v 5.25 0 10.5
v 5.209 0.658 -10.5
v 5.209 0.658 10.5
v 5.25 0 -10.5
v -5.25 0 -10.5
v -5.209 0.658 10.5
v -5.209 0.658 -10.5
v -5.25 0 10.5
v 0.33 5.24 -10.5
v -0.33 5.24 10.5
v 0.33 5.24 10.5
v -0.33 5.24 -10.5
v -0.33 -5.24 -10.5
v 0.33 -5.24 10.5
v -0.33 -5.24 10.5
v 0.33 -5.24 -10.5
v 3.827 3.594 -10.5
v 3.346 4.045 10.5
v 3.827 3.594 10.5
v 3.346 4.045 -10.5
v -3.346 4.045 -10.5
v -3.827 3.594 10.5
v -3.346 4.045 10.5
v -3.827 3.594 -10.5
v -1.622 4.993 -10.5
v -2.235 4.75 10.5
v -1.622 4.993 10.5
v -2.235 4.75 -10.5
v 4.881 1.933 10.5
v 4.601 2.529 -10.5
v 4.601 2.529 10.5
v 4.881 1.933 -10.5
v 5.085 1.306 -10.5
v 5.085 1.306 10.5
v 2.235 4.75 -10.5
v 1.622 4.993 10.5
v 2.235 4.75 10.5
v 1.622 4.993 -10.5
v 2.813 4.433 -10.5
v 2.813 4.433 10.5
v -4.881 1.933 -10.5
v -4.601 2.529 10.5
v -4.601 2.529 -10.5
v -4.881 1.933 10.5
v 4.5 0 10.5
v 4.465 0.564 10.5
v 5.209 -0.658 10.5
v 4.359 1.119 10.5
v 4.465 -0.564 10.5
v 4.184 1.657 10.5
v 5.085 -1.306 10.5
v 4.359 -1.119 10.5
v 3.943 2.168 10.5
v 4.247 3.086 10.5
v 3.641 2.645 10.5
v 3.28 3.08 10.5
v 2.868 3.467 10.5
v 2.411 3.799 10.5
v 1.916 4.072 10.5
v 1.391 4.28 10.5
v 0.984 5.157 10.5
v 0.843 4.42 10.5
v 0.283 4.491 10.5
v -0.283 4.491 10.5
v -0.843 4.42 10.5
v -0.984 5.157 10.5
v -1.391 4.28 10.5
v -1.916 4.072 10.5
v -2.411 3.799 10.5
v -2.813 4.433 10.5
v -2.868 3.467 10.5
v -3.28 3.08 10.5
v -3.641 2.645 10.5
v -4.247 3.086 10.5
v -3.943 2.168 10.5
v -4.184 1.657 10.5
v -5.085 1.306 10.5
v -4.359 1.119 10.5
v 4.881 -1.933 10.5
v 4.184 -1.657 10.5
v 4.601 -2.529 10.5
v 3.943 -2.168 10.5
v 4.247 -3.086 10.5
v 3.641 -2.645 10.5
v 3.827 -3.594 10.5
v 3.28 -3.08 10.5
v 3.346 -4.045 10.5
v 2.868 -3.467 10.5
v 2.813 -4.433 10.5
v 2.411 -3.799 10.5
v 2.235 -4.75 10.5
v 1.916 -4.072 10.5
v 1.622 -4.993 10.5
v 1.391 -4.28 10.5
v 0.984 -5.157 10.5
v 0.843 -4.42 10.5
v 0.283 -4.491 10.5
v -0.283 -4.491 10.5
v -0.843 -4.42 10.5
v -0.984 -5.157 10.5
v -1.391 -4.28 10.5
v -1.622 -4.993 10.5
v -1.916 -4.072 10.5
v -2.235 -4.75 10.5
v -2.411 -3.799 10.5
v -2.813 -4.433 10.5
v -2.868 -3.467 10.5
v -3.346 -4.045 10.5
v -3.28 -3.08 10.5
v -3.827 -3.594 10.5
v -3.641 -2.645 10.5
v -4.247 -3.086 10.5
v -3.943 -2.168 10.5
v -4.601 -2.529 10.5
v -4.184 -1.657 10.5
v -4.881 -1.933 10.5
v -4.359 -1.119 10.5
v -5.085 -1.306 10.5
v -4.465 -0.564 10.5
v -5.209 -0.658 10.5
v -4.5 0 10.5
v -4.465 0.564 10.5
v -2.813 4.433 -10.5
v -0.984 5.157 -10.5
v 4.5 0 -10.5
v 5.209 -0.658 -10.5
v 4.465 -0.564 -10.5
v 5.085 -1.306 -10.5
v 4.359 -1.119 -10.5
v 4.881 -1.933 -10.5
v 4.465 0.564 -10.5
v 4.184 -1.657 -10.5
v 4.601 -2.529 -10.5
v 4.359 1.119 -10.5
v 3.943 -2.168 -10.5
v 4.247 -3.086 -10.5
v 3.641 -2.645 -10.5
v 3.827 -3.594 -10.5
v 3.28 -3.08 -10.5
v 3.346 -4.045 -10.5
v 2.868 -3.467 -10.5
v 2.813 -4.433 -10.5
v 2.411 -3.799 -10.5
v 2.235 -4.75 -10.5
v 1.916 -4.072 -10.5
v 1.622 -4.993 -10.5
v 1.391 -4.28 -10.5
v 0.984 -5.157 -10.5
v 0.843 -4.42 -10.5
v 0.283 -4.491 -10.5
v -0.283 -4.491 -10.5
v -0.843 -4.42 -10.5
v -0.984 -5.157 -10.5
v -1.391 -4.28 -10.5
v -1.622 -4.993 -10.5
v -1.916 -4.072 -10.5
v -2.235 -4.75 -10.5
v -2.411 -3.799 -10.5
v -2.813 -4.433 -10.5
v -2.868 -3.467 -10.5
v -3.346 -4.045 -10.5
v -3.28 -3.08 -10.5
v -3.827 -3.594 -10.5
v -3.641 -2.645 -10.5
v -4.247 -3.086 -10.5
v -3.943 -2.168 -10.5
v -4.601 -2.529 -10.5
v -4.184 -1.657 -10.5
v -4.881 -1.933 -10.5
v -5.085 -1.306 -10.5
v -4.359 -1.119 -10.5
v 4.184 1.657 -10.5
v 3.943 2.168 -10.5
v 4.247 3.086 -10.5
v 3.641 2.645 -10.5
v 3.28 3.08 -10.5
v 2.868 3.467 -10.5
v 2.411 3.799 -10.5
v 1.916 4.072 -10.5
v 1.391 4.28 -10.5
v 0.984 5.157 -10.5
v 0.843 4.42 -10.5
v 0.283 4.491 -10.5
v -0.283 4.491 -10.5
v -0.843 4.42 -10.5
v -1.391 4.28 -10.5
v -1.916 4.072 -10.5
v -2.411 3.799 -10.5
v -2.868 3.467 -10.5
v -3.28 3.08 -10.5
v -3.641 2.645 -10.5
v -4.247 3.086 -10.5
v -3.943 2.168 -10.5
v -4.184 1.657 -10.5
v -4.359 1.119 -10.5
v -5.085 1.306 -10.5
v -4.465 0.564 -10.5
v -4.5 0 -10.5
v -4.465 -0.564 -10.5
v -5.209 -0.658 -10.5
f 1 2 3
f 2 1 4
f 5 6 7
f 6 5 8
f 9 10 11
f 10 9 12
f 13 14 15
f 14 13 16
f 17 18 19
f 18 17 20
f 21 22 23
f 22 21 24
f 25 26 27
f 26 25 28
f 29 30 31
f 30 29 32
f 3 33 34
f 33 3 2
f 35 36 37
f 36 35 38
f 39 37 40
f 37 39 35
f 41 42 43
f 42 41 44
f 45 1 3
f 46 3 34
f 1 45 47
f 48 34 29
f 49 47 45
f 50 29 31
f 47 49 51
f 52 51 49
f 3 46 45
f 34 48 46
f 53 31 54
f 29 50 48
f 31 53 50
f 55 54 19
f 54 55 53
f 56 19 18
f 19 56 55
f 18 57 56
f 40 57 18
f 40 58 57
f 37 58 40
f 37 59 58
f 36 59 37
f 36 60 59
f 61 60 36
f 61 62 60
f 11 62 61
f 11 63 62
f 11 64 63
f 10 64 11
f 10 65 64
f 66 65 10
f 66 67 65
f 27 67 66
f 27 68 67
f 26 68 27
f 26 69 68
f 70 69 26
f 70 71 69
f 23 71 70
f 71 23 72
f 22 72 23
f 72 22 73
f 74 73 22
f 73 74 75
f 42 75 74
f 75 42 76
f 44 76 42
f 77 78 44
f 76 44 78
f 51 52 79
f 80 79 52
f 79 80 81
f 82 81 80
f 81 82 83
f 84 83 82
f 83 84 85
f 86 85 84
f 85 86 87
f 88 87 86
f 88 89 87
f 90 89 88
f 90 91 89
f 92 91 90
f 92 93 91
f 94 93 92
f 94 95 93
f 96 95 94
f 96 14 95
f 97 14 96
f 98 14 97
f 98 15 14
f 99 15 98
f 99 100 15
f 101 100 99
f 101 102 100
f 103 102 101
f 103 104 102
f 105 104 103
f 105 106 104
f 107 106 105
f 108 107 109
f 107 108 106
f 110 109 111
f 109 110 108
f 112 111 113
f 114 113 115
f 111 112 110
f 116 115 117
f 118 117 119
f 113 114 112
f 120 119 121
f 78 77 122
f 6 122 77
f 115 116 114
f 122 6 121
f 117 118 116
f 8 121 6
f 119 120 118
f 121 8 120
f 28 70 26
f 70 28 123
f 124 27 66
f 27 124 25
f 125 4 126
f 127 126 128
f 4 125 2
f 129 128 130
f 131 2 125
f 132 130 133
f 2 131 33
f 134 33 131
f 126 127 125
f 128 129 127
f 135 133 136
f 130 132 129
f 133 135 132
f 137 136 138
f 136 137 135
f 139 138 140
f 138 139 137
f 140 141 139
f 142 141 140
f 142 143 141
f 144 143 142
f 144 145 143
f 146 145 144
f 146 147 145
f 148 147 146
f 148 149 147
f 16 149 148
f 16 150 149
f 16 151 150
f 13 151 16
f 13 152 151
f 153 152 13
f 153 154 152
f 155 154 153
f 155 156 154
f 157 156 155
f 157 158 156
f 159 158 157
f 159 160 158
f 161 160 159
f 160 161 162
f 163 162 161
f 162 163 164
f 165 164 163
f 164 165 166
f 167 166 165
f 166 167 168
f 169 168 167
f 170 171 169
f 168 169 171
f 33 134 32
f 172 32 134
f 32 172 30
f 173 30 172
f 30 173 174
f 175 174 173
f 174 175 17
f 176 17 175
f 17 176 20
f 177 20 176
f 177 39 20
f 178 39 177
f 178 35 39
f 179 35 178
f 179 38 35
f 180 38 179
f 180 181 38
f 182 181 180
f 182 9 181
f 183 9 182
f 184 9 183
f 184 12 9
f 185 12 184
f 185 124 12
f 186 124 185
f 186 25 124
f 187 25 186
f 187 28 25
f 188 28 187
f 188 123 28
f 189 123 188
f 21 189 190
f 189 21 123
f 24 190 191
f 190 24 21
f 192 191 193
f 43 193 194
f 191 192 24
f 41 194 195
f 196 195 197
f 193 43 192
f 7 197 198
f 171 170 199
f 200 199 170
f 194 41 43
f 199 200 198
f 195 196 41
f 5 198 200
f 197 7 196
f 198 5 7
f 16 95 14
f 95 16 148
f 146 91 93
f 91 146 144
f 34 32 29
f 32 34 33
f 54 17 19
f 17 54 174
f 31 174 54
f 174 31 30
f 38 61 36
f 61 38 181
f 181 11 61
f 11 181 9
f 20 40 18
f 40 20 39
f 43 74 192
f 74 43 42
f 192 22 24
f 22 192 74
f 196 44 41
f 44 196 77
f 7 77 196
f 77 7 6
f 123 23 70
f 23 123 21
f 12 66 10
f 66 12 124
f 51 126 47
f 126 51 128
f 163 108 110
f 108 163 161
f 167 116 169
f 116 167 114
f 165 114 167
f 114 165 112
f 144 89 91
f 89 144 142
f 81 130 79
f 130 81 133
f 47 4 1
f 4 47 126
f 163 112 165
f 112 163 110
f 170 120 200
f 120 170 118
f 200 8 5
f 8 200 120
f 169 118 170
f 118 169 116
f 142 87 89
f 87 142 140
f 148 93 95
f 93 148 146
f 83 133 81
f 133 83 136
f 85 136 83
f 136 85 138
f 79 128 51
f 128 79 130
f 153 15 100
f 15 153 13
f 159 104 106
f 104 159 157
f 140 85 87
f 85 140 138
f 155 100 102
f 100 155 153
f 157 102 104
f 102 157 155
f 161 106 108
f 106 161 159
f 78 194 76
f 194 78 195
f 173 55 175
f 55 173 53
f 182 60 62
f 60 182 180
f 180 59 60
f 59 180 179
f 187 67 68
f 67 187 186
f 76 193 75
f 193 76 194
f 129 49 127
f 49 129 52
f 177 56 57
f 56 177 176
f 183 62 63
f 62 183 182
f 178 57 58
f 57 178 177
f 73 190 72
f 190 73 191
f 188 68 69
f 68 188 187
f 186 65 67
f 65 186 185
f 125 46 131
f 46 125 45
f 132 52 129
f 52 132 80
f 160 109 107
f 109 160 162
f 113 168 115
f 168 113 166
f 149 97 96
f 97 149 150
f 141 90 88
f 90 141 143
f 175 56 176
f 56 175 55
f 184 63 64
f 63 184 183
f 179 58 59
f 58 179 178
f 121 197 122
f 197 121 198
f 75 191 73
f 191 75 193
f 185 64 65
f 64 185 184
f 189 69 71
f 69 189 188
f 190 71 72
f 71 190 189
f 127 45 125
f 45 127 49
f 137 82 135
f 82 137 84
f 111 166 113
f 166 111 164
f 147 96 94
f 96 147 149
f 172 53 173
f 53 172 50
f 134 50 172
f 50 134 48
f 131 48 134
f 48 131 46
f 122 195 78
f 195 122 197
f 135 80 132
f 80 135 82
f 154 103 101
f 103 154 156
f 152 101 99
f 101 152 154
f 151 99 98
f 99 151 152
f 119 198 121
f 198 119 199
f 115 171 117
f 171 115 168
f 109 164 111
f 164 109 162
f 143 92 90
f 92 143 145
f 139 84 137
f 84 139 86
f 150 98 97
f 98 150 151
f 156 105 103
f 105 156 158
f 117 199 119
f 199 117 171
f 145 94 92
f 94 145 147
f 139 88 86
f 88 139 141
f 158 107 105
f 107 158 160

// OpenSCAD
$fn = 50;


difference() {
	union() {
		translate(v = [0, 0, -10.5000000000]) {
			cylinder(h = 21, r = 5.2500000000);
		}
	}
	union() {
		translate(v = [0, 0, -100.0000000000]) {
			cylinder(h = 200, r = 4.5000000000);
		}
	}
}
